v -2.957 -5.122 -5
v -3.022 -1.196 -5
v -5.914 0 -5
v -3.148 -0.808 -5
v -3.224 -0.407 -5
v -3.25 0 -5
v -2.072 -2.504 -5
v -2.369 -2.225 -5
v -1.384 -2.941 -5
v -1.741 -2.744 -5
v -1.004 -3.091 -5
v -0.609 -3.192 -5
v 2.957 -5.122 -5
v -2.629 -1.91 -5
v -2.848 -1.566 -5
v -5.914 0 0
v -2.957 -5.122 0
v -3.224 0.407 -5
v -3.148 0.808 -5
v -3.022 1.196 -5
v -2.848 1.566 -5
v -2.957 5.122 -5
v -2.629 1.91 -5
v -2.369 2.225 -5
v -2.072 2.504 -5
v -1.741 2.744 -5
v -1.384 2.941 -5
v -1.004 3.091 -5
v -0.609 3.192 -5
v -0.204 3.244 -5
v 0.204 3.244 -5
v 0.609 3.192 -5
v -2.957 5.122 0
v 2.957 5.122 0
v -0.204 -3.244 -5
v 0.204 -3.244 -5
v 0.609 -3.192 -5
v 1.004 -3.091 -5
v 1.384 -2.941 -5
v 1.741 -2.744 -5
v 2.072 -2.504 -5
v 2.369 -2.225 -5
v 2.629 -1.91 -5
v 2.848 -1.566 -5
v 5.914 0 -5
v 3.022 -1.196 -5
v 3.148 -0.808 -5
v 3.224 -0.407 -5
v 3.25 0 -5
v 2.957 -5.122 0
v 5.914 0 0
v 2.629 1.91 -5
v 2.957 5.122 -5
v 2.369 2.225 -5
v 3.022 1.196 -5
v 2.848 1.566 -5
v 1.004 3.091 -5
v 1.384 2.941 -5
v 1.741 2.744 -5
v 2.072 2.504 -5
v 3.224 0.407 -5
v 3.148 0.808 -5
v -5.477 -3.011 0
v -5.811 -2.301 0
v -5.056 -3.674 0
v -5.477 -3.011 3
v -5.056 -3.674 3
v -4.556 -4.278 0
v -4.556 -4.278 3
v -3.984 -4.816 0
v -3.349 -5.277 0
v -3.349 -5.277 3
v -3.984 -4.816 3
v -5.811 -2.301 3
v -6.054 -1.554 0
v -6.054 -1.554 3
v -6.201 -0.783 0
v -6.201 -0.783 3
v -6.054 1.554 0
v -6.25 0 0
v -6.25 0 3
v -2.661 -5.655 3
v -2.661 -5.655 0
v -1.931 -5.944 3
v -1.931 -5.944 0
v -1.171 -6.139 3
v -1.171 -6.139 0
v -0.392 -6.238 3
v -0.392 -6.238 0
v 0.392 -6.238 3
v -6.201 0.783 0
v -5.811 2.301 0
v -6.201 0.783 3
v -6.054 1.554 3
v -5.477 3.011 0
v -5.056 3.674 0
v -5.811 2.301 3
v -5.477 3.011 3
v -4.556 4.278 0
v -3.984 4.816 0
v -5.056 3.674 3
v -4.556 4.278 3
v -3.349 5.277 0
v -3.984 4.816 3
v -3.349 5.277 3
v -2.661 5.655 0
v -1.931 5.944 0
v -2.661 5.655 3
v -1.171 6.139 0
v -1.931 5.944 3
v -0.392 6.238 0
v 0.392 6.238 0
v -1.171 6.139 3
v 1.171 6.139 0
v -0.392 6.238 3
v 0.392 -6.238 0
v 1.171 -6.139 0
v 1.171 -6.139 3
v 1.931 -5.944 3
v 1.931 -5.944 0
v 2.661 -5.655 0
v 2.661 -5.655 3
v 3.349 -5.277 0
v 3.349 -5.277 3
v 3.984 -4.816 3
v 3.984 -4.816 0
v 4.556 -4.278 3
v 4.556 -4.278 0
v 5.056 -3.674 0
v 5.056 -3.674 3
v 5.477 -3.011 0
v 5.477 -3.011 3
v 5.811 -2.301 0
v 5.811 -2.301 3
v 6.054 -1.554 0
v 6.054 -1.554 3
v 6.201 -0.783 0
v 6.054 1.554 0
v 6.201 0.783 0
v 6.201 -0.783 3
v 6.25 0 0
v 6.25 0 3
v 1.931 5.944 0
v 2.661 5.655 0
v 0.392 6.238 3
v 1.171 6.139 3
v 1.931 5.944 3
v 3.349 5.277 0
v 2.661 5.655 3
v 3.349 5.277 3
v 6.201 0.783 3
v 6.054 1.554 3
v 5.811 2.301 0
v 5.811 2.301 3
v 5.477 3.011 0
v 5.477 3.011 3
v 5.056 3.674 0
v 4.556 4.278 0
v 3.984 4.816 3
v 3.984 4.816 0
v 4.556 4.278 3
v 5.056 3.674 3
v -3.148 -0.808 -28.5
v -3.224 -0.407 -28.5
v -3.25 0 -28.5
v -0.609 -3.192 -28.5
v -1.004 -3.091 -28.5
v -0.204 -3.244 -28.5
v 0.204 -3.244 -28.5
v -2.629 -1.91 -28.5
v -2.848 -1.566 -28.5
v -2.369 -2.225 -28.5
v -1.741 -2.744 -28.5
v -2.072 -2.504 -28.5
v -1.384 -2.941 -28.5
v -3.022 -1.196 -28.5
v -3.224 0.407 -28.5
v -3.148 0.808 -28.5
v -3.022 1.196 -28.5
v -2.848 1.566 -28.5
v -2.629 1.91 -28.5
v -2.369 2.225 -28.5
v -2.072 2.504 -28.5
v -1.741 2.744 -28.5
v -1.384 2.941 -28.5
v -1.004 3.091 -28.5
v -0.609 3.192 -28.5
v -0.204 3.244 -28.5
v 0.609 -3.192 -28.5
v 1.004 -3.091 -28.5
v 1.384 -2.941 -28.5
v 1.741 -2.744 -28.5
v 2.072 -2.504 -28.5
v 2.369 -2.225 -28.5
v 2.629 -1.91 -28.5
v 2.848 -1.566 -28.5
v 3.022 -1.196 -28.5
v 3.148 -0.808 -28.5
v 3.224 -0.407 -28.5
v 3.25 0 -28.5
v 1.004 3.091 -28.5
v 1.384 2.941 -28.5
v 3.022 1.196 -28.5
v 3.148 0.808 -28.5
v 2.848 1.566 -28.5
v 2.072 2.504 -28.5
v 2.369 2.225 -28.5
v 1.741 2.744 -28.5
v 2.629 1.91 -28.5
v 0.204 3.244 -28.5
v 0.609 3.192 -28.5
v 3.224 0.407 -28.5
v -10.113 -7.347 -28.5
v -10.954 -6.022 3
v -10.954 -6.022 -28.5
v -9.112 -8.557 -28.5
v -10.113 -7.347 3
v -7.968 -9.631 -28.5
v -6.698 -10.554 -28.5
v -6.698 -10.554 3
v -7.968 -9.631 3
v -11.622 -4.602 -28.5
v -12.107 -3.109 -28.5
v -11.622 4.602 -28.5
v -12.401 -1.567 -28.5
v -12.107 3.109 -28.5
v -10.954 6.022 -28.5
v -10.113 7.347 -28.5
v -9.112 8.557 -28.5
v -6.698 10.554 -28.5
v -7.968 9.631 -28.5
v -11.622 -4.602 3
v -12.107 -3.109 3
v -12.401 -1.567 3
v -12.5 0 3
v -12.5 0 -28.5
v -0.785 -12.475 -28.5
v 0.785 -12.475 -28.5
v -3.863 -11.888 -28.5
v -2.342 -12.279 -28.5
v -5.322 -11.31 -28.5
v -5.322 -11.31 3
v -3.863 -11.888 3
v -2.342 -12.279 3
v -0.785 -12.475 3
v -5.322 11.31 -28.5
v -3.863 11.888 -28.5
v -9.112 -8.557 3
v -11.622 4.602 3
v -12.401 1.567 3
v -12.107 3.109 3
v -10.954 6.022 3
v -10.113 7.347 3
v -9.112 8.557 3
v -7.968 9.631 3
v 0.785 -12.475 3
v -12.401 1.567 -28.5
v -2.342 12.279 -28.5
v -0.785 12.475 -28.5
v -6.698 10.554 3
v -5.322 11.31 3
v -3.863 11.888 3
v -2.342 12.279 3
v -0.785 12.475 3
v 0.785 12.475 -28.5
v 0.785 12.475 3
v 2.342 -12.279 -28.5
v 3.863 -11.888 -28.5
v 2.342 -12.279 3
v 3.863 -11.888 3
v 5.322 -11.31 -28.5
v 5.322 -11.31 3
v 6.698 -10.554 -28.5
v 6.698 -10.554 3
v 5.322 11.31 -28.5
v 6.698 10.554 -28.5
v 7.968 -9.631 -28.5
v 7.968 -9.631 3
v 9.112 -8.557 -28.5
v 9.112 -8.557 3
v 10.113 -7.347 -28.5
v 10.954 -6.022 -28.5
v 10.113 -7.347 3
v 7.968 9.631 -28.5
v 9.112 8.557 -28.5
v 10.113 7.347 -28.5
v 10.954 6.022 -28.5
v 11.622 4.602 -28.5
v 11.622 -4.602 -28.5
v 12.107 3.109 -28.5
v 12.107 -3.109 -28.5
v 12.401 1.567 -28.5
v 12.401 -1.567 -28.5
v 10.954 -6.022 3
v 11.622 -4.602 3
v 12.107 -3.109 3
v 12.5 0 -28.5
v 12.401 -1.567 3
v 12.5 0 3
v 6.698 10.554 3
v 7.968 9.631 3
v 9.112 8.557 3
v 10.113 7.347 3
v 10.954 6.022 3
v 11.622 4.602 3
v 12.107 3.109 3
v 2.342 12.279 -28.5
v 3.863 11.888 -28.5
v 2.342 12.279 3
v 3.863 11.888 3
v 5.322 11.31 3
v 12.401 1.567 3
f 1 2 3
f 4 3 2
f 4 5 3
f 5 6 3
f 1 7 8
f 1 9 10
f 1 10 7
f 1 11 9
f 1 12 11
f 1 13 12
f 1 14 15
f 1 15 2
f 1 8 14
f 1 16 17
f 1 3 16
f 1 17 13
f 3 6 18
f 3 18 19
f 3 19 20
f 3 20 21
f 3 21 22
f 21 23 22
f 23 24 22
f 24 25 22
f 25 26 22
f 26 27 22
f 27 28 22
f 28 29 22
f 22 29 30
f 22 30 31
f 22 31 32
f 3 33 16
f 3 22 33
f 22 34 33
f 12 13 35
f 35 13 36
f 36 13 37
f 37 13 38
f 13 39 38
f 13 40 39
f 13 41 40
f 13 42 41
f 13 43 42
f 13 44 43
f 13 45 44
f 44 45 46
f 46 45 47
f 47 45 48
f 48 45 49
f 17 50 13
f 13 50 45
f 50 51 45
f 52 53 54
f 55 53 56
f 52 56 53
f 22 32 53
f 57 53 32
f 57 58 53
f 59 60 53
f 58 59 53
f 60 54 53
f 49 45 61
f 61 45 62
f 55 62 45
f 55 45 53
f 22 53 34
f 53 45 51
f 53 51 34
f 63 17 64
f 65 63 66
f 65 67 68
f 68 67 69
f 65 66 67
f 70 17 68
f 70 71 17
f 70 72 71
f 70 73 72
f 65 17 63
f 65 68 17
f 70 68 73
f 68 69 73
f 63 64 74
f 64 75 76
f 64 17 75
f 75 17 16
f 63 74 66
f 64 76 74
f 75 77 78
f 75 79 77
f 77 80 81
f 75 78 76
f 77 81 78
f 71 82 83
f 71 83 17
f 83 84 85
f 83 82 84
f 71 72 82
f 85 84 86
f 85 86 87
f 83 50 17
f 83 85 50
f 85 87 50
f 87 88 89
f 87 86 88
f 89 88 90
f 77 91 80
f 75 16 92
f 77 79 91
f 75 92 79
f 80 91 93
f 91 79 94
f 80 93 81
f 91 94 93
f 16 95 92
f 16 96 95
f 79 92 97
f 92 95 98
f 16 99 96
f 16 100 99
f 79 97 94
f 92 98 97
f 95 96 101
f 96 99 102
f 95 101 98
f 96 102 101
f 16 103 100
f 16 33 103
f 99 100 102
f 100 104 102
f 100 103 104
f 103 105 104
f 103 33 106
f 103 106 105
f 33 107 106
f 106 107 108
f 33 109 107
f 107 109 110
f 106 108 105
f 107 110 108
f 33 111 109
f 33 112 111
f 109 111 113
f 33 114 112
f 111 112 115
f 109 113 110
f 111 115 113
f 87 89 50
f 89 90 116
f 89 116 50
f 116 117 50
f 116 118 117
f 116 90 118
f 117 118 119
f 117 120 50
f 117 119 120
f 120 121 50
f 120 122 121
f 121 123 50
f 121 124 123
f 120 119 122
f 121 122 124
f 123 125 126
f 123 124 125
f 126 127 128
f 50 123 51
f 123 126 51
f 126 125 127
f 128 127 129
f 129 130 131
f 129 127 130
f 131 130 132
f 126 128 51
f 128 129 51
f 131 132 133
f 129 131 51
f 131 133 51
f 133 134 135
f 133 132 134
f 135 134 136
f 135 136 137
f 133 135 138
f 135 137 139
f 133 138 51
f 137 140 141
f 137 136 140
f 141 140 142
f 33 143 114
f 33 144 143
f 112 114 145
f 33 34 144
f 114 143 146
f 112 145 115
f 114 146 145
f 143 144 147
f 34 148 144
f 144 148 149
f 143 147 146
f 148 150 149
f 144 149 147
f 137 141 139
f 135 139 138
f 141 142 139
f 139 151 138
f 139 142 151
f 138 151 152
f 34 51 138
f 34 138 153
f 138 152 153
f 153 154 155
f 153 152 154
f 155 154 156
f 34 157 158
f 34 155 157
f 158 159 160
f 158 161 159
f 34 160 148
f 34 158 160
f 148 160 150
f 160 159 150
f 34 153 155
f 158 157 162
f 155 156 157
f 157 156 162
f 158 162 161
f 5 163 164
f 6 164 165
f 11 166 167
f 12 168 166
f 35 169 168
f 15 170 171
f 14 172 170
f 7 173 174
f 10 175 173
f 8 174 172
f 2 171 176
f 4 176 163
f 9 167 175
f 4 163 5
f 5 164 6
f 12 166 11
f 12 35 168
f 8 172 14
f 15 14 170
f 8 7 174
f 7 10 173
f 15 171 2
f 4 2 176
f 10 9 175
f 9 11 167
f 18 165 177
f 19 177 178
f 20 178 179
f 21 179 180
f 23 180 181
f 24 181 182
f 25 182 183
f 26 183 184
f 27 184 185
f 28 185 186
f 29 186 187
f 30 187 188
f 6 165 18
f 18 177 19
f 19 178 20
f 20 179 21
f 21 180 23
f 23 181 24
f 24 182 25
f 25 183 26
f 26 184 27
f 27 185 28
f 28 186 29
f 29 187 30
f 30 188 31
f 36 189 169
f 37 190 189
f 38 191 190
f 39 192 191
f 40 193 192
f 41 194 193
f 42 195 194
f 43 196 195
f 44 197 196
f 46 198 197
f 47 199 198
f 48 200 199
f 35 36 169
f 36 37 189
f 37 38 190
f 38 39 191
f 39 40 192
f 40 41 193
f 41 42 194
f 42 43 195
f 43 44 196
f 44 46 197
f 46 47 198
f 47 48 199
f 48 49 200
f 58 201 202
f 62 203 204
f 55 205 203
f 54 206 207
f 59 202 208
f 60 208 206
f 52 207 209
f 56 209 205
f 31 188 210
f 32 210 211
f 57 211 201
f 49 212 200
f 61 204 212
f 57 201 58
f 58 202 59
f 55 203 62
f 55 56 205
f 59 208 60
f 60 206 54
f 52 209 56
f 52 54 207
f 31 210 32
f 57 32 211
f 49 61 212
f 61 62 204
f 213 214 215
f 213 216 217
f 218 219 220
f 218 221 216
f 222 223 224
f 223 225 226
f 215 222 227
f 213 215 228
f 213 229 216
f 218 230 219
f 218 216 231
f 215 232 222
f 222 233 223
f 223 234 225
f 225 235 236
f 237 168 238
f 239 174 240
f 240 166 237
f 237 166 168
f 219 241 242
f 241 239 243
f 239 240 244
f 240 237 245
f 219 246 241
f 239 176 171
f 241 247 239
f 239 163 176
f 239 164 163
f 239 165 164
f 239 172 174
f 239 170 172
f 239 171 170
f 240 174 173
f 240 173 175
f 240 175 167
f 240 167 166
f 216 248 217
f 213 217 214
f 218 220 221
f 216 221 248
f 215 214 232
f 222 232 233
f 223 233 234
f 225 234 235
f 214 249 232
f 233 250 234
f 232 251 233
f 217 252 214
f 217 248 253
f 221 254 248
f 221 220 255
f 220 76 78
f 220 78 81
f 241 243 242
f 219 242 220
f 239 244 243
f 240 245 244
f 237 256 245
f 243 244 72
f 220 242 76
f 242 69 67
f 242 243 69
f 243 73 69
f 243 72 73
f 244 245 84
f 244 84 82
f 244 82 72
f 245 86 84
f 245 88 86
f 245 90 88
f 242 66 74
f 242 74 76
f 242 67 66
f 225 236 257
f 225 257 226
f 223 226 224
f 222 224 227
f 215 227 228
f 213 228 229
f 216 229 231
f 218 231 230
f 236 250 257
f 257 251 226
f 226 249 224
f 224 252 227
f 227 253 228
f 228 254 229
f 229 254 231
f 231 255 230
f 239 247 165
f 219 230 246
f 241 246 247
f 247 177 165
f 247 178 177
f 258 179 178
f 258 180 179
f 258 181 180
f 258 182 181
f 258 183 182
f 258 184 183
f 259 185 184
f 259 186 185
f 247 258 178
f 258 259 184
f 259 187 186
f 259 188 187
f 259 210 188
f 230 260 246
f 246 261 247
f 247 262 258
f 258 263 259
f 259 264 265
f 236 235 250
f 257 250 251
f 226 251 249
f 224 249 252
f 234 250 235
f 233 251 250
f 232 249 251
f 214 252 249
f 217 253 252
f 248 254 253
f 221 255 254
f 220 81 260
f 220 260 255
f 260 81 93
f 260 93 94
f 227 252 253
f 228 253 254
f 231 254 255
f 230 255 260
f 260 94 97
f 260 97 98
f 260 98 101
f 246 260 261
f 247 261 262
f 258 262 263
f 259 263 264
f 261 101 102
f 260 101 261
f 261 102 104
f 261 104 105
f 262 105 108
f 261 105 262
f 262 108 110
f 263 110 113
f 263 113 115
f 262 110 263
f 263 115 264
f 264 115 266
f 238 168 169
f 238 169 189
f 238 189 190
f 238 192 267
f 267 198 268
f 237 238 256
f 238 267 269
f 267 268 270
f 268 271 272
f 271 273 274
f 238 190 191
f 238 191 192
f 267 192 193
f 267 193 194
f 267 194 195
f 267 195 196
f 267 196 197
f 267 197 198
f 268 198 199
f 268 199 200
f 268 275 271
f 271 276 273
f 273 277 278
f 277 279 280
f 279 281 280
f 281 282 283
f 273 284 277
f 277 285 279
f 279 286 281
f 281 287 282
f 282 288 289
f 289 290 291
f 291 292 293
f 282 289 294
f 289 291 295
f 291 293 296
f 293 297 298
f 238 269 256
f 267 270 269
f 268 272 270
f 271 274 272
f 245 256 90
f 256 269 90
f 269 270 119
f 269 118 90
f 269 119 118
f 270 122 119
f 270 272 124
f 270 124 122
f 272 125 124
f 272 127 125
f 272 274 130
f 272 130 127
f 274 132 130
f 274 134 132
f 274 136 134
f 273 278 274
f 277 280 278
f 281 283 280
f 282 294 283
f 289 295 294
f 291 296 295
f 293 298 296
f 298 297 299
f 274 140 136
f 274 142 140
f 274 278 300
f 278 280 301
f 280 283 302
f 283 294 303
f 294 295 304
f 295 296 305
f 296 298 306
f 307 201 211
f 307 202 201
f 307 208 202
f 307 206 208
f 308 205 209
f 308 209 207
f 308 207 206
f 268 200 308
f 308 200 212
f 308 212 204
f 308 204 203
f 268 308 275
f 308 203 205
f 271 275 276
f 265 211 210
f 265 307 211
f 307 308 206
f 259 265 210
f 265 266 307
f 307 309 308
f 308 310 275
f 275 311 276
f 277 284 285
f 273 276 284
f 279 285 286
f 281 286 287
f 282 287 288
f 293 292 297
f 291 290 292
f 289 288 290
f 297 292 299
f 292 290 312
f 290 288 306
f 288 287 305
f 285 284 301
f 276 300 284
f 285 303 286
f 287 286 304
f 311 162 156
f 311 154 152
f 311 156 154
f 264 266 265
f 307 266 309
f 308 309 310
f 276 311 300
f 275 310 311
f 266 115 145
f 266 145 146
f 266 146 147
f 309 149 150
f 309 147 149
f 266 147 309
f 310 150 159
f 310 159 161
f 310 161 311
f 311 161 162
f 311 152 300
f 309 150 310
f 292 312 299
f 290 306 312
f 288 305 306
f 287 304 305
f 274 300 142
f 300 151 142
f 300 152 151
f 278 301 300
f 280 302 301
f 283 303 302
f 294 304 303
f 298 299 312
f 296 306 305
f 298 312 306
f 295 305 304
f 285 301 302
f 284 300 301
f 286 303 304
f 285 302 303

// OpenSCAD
$fn = 50;

difference() {
	union() {
		translate(v = [0, 0, -28.5]) {
			cylinder(h = 31.5, r = 12.5);
		}
	}
	union() {
		translate(v = [0, 0, 0]) {
			rotate(a = [0, 0, 0]) {
				difference() {
					union() {
						translate(v = [0, 0, -5]) {
							linear_extrude(height = 5) {
								polygon(points = [[5.914249999999999, 0.0], [2.957125, 5.1218907443321156], [-2.9571249999999982, 5.1218907443321156], [-5.914249999999999, 7.242867331857232e-16], [-2.9571250000000022, -5.121890744332115], [2.9571249999999956, -5.121890744332118]]);
							}
						}
					}
					union();
				}
			}
		}
		#cylinder(h = 3, r = 6.25);
		#translate(v = [0, 0, -100.0]) {
			cylinder(h = 200, r = 3.25);
		}
	}
}
